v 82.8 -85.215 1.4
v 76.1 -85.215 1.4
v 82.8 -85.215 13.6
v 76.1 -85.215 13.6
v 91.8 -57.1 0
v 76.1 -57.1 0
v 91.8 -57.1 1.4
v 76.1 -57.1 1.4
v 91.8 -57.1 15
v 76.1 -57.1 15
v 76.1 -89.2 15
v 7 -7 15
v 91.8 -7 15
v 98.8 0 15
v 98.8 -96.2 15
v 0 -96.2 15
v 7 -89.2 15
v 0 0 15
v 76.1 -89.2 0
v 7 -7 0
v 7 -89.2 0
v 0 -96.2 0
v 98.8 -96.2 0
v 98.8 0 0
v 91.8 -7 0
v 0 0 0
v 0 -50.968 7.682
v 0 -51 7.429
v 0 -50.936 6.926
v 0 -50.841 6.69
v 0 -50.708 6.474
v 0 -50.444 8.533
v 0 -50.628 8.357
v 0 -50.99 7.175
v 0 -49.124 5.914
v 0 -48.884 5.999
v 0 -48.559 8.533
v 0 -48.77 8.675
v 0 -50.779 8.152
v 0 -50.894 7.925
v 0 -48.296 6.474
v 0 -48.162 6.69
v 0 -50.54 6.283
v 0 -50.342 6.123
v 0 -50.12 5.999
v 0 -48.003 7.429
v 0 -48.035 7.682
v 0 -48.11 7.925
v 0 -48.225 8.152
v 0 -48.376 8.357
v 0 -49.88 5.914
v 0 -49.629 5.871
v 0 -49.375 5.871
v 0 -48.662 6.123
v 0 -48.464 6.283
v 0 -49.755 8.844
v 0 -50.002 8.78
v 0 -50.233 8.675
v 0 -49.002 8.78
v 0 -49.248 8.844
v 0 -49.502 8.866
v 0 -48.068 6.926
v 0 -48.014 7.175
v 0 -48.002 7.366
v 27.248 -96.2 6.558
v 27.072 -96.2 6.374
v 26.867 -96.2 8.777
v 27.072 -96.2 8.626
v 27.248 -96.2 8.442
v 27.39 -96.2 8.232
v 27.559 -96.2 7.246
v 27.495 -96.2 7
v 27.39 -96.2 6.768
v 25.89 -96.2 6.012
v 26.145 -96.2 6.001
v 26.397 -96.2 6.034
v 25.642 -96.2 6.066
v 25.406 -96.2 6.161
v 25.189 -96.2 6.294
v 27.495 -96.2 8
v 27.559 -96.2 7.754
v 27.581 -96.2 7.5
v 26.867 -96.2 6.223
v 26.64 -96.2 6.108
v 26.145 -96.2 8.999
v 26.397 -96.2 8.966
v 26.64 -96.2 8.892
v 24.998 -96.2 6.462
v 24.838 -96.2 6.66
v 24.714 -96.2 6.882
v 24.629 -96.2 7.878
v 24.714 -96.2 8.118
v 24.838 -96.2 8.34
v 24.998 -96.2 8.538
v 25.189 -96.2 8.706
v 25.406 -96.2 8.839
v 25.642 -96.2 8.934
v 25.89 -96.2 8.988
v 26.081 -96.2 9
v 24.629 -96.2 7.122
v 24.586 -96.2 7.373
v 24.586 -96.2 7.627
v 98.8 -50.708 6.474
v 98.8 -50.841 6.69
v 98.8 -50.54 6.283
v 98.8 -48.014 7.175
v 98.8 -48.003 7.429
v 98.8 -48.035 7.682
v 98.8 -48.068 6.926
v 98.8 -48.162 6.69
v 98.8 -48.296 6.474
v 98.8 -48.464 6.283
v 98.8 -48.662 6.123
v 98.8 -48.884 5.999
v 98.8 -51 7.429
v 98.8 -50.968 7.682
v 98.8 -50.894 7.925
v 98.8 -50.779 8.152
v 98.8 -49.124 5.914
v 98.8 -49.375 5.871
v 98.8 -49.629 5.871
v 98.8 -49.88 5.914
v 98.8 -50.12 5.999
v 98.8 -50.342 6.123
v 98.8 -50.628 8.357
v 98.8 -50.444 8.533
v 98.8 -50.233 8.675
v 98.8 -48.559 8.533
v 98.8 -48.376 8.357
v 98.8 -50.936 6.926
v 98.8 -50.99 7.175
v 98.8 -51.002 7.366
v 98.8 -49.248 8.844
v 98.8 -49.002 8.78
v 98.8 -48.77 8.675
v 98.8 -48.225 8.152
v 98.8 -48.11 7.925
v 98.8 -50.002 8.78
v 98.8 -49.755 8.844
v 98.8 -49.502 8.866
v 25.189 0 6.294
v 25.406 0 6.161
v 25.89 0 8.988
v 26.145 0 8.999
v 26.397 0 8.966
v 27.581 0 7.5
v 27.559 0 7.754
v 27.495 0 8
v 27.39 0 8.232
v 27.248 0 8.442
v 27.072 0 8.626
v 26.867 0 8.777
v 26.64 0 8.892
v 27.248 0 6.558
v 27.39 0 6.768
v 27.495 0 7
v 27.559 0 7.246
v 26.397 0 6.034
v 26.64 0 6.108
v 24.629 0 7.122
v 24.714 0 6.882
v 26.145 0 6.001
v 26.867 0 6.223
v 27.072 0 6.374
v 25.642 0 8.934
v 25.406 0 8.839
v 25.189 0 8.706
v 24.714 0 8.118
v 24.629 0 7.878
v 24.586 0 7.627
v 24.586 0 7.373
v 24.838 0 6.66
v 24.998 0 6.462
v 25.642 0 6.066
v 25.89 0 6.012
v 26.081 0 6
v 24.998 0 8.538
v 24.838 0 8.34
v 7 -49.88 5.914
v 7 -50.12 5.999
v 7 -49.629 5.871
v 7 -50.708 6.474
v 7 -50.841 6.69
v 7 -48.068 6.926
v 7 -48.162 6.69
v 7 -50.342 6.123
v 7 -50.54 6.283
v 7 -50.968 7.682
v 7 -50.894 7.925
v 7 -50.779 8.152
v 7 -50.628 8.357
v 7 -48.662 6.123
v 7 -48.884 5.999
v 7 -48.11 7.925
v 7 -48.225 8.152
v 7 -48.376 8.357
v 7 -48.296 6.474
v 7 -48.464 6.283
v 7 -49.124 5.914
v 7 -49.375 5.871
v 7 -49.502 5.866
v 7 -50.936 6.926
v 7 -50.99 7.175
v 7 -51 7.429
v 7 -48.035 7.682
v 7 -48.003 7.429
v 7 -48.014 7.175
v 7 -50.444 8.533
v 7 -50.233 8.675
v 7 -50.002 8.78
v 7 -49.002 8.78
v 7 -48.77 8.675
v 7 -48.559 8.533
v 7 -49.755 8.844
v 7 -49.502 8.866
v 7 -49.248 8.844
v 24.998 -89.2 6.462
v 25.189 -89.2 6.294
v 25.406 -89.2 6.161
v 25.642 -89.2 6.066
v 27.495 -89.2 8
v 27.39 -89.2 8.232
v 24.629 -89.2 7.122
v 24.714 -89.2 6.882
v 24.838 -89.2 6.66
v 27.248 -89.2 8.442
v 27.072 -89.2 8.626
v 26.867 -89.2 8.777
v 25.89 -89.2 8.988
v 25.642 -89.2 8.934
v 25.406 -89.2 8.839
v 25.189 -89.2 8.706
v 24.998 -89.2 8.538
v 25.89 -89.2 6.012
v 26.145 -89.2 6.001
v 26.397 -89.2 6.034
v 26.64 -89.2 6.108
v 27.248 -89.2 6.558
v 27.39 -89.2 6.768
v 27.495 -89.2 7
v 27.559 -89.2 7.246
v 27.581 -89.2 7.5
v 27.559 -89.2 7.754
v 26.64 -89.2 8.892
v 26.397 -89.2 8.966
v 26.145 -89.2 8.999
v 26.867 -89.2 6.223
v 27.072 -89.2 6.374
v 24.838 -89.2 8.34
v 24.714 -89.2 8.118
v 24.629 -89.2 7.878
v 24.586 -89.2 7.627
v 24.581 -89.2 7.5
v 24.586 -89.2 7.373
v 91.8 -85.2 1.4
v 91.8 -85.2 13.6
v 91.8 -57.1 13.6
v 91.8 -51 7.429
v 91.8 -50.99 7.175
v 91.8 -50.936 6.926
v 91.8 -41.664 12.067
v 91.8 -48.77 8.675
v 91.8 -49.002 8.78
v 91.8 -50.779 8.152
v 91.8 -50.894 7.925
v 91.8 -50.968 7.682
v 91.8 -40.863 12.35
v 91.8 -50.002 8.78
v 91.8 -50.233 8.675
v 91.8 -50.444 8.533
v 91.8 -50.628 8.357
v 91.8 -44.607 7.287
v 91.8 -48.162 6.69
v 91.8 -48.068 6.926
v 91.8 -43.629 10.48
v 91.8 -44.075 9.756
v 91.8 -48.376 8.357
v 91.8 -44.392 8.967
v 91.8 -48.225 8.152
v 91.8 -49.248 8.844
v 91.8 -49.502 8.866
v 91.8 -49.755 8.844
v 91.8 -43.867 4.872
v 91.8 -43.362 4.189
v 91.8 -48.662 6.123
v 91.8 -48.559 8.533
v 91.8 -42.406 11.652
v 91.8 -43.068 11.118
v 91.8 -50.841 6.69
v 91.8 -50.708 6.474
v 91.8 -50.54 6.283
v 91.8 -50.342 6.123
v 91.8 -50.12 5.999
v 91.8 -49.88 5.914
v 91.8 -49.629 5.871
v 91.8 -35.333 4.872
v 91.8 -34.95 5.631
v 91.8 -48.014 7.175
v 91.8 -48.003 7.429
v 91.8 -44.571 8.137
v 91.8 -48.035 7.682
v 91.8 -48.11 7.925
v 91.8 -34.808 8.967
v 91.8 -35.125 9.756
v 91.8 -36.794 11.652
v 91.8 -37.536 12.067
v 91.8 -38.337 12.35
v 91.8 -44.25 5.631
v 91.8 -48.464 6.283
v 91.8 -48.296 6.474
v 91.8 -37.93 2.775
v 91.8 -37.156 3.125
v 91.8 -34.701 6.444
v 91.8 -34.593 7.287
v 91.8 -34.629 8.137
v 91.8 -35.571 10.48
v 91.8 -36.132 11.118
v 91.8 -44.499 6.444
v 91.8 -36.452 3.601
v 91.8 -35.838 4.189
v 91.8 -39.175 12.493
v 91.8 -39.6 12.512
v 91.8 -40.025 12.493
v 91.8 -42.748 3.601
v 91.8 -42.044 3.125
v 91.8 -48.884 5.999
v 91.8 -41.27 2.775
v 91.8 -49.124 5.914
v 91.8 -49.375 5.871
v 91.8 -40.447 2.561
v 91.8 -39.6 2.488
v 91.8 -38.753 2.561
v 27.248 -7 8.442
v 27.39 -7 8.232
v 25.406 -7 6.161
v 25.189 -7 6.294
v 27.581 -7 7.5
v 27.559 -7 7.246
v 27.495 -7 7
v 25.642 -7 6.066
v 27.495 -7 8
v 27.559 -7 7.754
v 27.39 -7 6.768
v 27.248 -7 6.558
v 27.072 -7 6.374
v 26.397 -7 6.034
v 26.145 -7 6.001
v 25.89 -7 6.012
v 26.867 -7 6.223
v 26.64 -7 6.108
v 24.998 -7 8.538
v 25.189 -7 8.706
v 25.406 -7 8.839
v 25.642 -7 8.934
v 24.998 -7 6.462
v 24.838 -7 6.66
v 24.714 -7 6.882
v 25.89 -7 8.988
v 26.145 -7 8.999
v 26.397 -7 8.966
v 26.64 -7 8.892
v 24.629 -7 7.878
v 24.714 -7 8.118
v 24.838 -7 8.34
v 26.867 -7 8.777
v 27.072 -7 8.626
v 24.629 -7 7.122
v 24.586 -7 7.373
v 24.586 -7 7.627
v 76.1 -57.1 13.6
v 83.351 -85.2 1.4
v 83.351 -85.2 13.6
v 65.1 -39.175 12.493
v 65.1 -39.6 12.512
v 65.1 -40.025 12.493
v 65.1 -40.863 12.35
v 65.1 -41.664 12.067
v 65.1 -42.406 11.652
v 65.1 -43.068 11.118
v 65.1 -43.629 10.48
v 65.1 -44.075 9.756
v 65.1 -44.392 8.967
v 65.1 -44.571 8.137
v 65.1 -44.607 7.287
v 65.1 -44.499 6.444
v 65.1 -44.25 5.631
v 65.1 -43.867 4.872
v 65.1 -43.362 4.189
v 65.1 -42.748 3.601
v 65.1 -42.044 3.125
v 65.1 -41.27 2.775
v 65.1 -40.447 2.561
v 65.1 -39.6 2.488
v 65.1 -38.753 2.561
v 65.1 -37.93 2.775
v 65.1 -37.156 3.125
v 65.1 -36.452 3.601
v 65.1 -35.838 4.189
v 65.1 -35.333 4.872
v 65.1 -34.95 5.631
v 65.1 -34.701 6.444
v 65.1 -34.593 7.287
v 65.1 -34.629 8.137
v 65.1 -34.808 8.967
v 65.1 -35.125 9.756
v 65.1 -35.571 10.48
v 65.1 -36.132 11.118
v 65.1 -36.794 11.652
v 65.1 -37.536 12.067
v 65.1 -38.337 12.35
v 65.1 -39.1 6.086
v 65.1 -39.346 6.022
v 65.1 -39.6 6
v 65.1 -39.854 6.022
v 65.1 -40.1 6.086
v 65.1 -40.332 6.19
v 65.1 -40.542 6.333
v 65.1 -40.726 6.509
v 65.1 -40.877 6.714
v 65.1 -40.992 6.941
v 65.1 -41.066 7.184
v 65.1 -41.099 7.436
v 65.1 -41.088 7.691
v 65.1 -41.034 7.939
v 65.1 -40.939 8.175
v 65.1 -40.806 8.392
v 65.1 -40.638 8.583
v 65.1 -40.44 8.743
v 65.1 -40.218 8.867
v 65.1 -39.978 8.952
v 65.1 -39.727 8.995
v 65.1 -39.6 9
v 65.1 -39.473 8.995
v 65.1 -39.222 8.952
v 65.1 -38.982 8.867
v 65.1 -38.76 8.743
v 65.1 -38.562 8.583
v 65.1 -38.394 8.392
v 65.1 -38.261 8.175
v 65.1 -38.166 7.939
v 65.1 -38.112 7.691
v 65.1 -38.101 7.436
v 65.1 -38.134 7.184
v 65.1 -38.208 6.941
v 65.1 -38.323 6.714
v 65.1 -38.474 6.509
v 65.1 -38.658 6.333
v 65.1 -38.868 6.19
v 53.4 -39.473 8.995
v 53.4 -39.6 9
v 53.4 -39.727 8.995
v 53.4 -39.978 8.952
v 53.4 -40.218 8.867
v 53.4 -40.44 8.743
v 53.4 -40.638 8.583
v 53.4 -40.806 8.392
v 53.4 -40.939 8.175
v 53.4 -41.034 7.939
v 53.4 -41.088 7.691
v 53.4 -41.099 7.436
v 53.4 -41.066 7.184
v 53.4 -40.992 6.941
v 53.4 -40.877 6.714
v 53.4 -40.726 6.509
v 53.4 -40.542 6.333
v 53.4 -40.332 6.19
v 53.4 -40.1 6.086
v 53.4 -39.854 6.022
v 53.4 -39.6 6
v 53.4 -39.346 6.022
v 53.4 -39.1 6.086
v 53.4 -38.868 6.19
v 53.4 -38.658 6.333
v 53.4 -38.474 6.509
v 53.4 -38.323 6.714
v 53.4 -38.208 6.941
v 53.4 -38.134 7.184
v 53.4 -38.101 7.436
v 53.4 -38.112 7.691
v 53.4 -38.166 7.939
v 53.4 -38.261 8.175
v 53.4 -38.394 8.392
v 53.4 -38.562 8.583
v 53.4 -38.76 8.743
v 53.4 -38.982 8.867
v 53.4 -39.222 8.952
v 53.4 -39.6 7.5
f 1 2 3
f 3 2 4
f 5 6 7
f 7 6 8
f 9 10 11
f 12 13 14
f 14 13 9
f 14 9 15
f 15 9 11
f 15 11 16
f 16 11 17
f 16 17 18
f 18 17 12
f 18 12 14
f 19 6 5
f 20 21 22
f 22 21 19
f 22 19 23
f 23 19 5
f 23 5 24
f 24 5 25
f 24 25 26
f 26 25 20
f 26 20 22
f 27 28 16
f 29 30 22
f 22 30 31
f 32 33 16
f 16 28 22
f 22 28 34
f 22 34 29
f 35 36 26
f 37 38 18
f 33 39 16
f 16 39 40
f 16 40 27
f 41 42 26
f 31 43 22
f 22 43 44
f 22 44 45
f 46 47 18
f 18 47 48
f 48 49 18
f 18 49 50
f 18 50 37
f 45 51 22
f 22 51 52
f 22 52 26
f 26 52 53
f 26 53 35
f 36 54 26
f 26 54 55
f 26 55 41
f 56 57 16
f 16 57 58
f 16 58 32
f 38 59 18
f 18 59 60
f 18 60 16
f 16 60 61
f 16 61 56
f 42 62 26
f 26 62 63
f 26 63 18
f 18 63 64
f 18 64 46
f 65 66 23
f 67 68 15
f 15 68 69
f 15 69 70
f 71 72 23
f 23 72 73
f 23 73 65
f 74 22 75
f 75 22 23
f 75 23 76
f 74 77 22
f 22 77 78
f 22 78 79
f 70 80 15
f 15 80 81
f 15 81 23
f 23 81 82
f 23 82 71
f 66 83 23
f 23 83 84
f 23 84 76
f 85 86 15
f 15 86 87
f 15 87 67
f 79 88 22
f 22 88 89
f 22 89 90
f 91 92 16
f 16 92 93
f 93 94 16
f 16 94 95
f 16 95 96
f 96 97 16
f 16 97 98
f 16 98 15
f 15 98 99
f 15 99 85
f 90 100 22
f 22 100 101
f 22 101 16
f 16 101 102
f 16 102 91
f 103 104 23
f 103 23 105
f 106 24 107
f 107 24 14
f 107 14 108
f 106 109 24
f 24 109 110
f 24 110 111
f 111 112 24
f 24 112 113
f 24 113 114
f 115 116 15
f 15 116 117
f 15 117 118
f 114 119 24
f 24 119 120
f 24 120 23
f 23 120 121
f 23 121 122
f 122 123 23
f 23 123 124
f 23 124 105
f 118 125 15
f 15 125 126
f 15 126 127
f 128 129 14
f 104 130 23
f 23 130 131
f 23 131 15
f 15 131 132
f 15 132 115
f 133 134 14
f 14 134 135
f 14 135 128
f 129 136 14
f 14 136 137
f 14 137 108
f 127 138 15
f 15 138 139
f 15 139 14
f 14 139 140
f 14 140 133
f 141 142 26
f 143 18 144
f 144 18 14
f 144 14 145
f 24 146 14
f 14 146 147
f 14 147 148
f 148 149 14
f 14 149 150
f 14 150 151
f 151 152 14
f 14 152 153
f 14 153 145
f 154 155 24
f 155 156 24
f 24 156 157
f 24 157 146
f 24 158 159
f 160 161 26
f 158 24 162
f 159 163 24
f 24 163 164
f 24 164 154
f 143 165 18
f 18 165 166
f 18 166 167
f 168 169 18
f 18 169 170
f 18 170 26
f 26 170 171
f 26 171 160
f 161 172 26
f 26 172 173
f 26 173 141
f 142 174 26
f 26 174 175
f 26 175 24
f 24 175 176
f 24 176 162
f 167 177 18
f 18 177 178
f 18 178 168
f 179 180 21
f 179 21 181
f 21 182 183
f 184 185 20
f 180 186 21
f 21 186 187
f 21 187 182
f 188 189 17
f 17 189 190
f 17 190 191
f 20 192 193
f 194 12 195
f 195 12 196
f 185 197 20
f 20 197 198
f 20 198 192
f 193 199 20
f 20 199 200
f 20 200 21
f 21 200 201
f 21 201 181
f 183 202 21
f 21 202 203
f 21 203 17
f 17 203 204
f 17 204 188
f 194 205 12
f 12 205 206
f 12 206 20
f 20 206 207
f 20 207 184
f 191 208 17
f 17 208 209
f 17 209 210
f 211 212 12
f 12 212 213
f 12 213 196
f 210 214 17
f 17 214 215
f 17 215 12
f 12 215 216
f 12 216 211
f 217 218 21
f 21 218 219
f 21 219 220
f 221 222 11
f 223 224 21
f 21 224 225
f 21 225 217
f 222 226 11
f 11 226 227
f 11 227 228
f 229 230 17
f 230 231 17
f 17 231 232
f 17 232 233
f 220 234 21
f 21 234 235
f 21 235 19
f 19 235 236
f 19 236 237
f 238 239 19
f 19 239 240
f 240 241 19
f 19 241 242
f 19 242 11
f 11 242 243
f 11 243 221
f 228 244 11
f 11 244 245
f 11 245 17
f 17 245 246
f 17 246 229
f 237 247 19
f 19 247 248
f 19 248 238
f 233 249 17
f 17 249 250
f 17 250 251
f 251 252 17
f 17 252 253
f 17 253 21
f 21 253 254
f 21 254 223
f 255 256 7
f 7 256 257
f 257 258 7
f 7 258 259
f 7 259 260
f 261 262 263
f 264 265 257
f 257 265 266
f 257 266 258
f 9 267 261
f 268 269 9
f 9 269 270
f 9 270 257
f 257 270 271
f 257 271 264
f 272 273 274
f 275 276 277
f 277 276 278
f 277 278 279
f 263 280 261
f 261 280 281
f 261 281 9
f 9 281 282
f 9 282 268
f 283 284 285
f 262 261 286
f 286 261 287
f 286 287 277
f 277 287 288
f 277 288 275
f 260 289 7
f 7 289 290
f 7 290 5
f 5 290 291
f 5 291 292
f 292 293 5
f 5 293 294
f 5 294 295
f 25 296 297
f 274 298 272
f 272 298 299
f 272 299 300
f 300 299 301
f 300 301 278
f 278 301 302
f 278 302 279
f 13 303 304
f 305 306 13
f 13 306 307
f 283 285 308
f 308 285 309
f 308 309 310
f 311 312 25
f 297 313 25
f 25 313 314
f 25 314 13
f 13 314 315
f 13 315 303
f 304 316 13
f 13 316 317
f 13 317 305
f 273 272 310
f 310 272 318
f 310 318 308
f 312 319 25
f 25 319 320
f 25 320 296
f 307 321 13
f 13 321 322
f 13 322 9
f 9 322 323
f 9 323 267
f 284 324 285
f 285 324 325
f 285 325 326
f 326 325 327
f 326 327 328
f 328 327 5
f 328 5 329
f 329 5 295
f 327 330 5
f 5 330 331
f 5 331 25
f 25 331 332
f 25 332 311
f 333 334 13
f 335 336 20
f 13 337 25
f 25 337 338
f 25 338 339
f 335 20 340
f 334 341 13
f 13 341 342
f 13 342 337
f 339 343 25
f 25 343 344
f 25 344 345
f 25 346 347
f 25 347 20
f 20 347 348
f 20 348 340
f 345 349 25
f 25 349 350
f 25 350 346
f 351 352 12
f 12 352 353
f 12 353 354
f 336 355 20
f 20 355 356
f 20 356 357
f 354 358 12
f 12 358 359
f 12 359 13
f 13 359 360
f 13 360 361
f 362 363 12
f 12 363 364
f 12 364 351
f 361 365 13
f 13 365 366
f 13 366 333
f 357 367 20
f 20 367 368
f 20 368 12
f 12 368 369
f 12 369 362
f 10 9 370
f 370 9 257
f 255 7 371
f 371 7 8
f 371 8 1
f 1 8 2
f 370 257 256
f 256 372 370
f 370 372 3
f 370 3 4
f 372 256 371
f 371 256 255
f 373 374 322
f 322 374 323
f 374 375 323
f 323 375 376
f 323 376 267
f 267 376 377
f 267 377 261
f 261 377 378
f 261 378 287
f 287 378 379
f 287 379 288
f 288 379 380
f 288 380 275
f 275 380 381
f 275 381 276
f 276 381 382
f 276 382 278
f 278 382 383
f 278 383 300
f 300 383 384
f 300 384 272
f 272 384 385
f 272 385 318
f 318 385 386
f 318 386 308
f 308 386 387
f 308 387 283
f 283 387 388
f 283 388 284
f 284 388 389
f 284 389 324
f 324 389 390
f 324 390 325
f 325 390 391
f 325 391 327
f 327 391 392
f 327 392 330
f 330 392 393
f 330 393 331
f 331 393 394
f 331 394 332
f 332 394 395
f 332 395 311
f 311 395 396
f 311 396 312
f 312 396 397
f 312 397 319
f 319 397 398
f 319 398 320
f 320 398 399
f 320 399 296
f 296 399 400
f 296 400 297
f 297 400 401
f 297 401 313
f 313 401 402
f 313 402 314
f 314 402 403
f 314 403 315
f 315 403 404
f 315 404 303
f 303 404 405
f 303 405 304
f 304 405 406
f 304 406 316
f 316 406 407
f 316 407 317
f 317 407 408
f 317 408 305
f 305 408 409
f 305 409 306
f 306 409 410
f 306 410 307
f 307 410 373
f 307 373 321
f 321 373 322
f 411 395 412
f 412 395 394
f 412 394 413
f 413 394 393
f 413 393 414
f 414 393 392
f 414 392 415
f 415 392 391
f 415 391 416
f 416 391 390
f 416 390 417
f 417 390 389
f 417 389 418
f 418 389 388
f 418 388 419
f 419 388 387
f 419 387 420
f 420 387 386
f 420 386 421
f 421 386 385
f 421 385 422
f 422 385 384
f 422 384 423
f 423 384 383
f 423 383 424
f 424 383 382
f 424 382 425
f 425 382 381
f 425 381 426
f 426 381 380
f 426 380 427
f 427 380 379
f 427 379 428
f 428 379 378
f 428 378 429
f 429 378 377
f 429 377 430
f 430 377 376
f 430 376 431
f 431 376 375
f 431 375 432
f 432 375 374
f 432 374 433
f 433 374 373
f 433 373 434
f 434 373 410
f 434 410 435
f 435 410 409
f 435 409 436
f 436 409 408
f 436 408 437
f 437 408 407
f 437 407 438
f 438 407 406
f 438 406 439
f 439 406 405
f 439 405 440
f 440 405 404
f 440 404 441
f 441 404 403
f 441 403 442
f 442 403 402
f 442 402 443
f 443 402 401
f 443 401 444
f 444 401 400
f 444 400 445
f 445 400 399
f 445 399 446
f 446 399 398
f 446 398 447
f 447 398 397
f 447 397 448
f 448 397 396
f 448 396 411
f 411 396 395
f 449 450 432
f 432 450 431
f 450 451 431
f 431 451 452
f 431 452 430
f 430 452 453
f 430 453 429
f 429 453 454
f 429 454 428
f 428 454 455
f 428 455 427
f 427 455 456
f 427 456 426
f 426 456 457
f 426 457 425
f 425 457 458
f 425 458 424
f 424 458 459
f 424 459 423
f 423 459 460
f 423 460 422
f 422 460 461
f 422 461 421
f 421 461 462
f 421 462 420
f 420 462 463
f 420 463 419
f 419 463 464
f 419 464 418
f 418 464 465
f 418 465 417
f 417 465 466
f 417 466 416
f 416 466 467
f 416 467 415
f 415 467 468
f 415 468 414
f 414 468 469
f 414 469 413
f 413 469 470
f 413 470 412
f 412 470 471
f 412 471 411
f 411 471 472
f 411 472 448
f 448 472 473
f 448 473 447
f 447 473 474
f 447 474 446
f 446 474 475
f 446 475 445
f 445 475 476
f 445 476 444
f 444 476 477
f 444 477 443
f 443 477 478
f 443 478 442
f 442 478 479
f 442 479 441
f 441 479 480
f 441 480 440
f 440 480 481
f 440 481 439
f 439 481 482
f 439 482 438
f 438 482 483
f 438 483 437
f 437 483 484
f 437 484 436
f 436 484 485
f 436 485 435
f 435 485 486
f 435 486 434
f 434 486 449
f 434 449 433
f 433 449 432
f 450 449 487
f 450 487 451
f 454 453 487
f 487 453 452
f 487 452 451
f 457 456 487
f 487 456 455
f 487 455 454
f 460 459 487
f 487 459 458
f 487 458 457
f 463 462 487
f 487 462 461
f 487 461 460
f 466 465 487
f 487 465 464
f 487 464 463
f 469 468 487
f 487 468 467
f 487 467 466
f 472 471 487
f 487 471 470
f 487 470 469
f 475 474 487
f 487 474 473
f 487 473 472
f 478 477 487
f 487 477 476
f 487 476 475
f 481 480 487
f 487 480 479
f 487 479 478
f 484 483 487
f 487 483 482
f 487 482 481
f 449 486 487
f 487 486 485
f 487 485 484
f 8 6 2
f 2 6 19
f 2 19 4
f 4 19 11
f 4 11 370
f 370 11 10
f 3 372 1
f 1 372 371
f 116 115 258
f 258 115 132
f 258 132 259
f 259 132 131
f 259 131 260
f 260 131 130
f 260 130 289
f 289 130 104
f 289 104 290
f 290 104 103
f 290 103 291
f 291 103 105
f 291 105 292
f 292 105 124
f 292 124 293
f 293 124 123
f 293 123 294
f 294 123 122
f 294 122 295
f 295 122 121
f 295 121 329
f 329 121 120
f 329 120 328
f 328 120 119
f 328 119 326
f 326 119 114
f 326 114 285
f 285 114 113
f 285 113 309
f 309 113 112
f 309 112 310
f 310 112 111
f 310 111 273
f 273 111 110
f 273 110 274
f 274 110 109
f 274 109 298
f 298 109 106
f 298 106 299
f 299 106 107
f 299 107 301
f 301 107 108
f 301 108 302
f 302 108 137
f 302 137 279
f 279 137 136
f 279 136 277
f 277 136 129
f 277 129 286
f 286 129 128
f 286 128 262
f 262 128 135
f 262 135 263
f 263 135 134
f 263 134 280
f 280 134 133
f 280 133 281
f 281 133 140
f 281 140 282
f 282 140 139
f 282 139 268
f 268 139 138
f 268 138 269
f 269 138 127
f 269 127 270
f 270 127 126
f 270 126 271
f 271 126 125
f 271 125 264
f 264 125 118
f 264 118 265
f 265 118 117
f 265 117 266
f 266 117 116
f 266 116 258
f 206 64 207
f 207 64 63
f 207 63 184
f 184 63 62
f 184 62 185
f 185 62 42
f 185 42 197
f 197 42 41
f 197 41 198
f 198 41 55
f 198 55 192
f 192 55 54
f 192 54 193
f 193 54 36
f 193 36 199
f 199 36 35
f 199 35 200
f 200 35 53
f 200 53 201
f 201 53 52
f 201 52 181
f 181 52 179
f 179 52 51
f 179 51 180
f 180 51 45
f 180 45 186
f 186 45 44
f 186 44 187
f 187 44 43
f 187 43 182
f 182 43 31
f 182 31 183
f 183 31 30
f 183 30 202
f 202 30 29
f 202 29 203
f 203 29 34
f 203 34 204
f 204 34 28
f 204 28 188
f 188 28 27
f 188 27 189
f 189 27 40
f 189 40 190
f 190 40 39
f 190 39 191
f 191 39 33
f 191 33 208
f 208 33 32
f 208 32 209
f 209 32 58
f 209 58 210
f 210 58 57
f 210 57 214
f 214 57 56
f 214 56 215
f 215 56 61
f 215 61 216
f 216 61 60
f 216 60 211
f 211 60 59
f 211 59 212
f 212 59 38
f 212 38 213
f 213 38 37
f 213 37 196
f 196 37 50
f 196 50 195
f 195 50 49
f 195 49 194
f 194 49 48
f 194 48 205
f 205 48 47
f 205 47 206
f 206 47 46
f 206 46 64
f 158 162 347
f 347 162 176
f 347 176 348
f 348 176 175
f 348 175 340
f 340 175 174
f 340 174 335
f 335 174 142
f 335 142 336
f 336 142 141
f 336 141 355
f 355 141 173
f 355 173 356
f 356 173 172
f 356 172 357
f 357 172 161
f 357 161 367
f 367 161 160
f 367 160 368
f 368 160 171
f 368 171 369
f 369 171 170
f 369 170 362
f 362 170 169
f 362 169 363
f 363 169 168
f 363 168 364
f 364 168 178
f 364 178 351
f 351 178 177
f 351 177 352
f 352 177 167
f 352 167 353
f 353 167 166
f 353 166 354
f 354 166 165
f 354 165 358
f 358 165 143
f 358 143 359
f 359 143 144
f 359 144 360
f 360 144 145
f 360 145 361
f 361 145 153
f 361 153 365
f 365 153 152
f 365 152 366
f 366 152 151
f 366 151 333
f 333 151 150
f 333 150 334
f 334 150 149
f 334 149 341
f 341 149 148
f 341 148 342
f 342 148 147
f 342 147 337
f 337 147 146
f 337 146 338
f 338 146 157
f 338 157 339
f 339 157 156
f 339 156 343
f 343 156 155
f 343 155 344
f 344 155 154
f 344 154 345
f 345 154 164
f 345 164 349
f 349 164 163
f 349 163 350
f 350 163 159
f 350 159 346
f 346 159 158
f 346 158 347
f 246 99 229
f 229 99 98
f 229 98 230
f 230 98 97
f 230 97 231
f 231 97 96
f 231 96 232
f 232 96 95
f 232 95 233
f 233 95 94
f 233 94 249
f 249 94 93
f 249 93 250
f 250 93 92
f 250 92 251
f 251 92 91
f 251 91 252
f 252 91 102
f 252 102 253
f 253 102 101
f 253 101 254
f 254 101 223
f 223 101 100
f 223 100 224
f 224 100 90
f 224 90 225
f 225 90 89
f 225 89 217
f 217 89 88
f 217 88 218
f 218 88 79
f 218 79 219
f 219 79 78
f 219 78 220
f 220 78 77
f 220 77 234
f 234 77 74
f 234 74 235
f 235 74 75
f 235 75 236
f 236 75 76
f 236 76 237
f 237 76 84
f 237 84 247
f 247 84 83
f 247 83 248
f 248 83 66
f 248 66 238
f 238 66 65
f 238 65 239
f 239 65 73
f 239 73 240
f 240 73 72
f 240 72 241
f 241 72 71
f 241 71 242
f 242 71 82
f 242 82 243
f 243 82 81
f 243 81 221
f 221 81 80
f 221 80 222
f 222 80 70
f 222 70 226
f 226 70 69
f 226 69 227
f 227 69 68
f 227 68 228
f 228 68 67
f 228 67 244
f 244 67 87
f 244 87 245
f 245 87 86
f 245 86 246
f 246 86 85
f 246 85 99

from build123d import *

# Parameters (mm, degrees)
SKETCH_1_W               = 98.8
SKETCH_1_H               = 96.2
EXTRUDE_2_DEPTH          = 15
CUT_EXTRUDE_1_DEPTH      = 43
CUT_EXTRUDE_1_DEPTH_BACK = 57
SKETCH_4_W               = 84.8
SKETCH_4_H               = 82.2
SKETCH_10_W              = 15
SKETCH_10_H              = 32.1
EXTRUDE_4_DEPTH          = 16
SKETCH_11_W              = 12.2
SKETCH_11_H              = 28.2
CUT_EXTRUDE_2_DEPTH      = 9
SKETCH_12_R              = 5.011519167
EXTRUDE_5_DEPTH          = 26.7
SKETCH_13_R              = 1.5
EXTRUDE_6_DEPTH          = 11.7
SKETCH_14_W              = 15
SKETCH_14_H              = 3.984812986
EXTRUDE_7_DEPTH          = 6.7
FILLET_1_R               = 10
SKETCH_15_W              = 1.4
SKETCH_15_H              = 28.115187014
EXTRUDE_8_DEPTH          = 6.7
SKETCH_17_W              = 1.4
SKETCH_17_H              = 28.115187014
EXTRUDE_9_DEPTH          = 6.7
CUT_EXTRUDE_3_DEPTH      = 128
CUT_EXTRUDE_3_DEPTH_BACK = 32.7
SKETCH_18_R              = 1.5
CUT_EXTRUDE_4_DEPTH      = 107
CUT_EXTRUDE_4_DEPTH_BACK = 39.7
SKETCH_19_R              = 1.5


with BuildPart() as part:
    # Эскиз1 → Бобышка-Вытянуть2 (new body)
    with BuildSketch(Plane.XY):
        with Locations((49.4, -48.1)):
            Rectangle(SKETCH_1_W, SKETCH_1_H)
    extrude(amount=EXTRUDE_2_DEPTH)

    # Эскиз4 → Вырез-Вытянуть1 (cut, two sides: drawn at the far end of the back side and taken through both)
    with BuildSketch(Plane.XY.offset(15).offset(-CUT_EXTRUDE_1_DEPTH_BACK)):
        with Locations((49.4, -48.1)):
            Rectangle(SKETCH_4_W, SKETCH_4_H)
    extrude(amount=CUT_EXTRUDE_1_DEPTH + CUT_EXTRUDE_1_DEPTH_BACK, mode=Mode.SUBTRACT)

    # Эскиз10 → Бобышка-Вытянуть4 (add)
    with BuildSketch(Plane(origin=(98.8, 0, 0), x_dir=(0, 0, -1), z_dir=(1, 0, 0))):
        with Locations((-7.5, -73.15)):
            Rectangle(SKETCH_10_W, SKETCH_10_H)
    extrude(amount=-EXTRUDE_4_DEPTH)

    # Эскиз11 → Вырез-Вытянуть2 (cut)
    with BuildSketch(Plane.ZY.offset(-82.8)):
        with Locations((7.5, -71.1)):
            Rectangle(SKETCH_11_W, SKETCH_11_H)
    extrude(amount=-CUT_EXTRUDE_2_DEPTH, mode=Mode.SUBTRACT)

    # Эскиз12 → Бобышка-Вытянуть5 (add)
    with BuildSketch(Plane.ZY.offset(-91.8)):
        with Locations((7.5, -39.6)):
            Circle(SKETCH_12_R)
    extrude(amount=EXTRUDE_5_DEPTH)

    # Эскиз13 → Бобышка-Вытянуть6 (add)
    with BuildSketch(Plane.ZY.offset(-65.1)):
        with Locations((7.5, -39.6)):
            Circle(SKETCH_13_R)
    extrude(amount=EXTRUDE_6_DEPTH)

    # Эскиз14 → Бобышка-Вытянуть7 (add)
    with BuildSketch(Plane.ZY.offset(-82.8)):
        with Locations((7.5, -87.207593507)):
            Rectangle(SKETCH_14_W, SKETCH_14_H)
    extrude(amount=EXTRUDE_7_DEPTH)

    # Скругление1
    # the kernel refuses this fillet: 10 mm, written as the material it takes off along each edge
    with BuildSketch(Plane(origin=(82.8, -85.2, 13.6), x_dir=(0, -1, 0), z_dir=(0, 0, -1))) as fillet_1_piece_1:
        with BuildLine():
            CenterArc((10, -0.550917082), FILLET_1_R, 176.841878722, 3.158121278)
            Line((0, -0.550917082), (0, 0))
            Line((0, 0), (0.015187014, 0))
        make_face()
    extrude(amount=12.2, mode=Mode.SUBTRACT)

    # Эскиз15 → Бобышка-Вытянуть8 (add)
    with BuildSketch(Plane.ZY.offset(-82.8)):
        with Locations((0.7, -71.157593507)):
            Rectangle(SKETCH_15_W, SKETCH_15_H)
    extrude(amount=EXTRUDE_8_DEPTH)

    # Эскиз17 → Бобышка-Вытянуть9 (add)
    with BuildSketch(Plane.ZY.offset(-82.8)):
        with Locations((14.3, -71.157593507)):
            Rectangle(SKETCH_17_W, SKETCH_17_H)
    extrude(amount=EXTRUDE_9_DEPTH)

    # Эскиз18 → Вырез-Вытянуть3 (cut, two sides: drawn at the far end of the back side and taken through both)
    with BuildSketch(Plane(origin=(7, 0, 0), x_dir=(0, 0, -1), z_dir=(1, 0, 0)).offset(-CUT_EXTRUDE_3_DEPTH_BACK)):
        with Locations(Location((-7.365603058, -49.501812711, 0), (0, 0, 180))):
            Circle(SKETCH_18_R)
    extrude(amount=CUT_EXTRUDE_3_DEPTH + CUT_EXTRUDE_3_DEPTH_BACK, mode=Mode.SUBTRACT)

    # Эскиз19 → Вырез-Вытянуть4 (cut, two sides: drawn at the far end of the back side and taken through both)
    with BuildSketch(Plane(origin=(0, -89.2, 0), x_dir=(1, 0, 0), z_dir=(0, 1, 0)).offset(-CUT_EXTRUDE_4_DEPTH_BACK)):
        with Locations((26.080914384, -7.5)):
            Circle(SKETCH_19_R)
    extrude(amount=CUT_EXTRUDE_4_DEPTH + CUT_EXTRUDE_4_DEPTH_BACK, mode=Mode.SUBTRACT)


solid = part.part
